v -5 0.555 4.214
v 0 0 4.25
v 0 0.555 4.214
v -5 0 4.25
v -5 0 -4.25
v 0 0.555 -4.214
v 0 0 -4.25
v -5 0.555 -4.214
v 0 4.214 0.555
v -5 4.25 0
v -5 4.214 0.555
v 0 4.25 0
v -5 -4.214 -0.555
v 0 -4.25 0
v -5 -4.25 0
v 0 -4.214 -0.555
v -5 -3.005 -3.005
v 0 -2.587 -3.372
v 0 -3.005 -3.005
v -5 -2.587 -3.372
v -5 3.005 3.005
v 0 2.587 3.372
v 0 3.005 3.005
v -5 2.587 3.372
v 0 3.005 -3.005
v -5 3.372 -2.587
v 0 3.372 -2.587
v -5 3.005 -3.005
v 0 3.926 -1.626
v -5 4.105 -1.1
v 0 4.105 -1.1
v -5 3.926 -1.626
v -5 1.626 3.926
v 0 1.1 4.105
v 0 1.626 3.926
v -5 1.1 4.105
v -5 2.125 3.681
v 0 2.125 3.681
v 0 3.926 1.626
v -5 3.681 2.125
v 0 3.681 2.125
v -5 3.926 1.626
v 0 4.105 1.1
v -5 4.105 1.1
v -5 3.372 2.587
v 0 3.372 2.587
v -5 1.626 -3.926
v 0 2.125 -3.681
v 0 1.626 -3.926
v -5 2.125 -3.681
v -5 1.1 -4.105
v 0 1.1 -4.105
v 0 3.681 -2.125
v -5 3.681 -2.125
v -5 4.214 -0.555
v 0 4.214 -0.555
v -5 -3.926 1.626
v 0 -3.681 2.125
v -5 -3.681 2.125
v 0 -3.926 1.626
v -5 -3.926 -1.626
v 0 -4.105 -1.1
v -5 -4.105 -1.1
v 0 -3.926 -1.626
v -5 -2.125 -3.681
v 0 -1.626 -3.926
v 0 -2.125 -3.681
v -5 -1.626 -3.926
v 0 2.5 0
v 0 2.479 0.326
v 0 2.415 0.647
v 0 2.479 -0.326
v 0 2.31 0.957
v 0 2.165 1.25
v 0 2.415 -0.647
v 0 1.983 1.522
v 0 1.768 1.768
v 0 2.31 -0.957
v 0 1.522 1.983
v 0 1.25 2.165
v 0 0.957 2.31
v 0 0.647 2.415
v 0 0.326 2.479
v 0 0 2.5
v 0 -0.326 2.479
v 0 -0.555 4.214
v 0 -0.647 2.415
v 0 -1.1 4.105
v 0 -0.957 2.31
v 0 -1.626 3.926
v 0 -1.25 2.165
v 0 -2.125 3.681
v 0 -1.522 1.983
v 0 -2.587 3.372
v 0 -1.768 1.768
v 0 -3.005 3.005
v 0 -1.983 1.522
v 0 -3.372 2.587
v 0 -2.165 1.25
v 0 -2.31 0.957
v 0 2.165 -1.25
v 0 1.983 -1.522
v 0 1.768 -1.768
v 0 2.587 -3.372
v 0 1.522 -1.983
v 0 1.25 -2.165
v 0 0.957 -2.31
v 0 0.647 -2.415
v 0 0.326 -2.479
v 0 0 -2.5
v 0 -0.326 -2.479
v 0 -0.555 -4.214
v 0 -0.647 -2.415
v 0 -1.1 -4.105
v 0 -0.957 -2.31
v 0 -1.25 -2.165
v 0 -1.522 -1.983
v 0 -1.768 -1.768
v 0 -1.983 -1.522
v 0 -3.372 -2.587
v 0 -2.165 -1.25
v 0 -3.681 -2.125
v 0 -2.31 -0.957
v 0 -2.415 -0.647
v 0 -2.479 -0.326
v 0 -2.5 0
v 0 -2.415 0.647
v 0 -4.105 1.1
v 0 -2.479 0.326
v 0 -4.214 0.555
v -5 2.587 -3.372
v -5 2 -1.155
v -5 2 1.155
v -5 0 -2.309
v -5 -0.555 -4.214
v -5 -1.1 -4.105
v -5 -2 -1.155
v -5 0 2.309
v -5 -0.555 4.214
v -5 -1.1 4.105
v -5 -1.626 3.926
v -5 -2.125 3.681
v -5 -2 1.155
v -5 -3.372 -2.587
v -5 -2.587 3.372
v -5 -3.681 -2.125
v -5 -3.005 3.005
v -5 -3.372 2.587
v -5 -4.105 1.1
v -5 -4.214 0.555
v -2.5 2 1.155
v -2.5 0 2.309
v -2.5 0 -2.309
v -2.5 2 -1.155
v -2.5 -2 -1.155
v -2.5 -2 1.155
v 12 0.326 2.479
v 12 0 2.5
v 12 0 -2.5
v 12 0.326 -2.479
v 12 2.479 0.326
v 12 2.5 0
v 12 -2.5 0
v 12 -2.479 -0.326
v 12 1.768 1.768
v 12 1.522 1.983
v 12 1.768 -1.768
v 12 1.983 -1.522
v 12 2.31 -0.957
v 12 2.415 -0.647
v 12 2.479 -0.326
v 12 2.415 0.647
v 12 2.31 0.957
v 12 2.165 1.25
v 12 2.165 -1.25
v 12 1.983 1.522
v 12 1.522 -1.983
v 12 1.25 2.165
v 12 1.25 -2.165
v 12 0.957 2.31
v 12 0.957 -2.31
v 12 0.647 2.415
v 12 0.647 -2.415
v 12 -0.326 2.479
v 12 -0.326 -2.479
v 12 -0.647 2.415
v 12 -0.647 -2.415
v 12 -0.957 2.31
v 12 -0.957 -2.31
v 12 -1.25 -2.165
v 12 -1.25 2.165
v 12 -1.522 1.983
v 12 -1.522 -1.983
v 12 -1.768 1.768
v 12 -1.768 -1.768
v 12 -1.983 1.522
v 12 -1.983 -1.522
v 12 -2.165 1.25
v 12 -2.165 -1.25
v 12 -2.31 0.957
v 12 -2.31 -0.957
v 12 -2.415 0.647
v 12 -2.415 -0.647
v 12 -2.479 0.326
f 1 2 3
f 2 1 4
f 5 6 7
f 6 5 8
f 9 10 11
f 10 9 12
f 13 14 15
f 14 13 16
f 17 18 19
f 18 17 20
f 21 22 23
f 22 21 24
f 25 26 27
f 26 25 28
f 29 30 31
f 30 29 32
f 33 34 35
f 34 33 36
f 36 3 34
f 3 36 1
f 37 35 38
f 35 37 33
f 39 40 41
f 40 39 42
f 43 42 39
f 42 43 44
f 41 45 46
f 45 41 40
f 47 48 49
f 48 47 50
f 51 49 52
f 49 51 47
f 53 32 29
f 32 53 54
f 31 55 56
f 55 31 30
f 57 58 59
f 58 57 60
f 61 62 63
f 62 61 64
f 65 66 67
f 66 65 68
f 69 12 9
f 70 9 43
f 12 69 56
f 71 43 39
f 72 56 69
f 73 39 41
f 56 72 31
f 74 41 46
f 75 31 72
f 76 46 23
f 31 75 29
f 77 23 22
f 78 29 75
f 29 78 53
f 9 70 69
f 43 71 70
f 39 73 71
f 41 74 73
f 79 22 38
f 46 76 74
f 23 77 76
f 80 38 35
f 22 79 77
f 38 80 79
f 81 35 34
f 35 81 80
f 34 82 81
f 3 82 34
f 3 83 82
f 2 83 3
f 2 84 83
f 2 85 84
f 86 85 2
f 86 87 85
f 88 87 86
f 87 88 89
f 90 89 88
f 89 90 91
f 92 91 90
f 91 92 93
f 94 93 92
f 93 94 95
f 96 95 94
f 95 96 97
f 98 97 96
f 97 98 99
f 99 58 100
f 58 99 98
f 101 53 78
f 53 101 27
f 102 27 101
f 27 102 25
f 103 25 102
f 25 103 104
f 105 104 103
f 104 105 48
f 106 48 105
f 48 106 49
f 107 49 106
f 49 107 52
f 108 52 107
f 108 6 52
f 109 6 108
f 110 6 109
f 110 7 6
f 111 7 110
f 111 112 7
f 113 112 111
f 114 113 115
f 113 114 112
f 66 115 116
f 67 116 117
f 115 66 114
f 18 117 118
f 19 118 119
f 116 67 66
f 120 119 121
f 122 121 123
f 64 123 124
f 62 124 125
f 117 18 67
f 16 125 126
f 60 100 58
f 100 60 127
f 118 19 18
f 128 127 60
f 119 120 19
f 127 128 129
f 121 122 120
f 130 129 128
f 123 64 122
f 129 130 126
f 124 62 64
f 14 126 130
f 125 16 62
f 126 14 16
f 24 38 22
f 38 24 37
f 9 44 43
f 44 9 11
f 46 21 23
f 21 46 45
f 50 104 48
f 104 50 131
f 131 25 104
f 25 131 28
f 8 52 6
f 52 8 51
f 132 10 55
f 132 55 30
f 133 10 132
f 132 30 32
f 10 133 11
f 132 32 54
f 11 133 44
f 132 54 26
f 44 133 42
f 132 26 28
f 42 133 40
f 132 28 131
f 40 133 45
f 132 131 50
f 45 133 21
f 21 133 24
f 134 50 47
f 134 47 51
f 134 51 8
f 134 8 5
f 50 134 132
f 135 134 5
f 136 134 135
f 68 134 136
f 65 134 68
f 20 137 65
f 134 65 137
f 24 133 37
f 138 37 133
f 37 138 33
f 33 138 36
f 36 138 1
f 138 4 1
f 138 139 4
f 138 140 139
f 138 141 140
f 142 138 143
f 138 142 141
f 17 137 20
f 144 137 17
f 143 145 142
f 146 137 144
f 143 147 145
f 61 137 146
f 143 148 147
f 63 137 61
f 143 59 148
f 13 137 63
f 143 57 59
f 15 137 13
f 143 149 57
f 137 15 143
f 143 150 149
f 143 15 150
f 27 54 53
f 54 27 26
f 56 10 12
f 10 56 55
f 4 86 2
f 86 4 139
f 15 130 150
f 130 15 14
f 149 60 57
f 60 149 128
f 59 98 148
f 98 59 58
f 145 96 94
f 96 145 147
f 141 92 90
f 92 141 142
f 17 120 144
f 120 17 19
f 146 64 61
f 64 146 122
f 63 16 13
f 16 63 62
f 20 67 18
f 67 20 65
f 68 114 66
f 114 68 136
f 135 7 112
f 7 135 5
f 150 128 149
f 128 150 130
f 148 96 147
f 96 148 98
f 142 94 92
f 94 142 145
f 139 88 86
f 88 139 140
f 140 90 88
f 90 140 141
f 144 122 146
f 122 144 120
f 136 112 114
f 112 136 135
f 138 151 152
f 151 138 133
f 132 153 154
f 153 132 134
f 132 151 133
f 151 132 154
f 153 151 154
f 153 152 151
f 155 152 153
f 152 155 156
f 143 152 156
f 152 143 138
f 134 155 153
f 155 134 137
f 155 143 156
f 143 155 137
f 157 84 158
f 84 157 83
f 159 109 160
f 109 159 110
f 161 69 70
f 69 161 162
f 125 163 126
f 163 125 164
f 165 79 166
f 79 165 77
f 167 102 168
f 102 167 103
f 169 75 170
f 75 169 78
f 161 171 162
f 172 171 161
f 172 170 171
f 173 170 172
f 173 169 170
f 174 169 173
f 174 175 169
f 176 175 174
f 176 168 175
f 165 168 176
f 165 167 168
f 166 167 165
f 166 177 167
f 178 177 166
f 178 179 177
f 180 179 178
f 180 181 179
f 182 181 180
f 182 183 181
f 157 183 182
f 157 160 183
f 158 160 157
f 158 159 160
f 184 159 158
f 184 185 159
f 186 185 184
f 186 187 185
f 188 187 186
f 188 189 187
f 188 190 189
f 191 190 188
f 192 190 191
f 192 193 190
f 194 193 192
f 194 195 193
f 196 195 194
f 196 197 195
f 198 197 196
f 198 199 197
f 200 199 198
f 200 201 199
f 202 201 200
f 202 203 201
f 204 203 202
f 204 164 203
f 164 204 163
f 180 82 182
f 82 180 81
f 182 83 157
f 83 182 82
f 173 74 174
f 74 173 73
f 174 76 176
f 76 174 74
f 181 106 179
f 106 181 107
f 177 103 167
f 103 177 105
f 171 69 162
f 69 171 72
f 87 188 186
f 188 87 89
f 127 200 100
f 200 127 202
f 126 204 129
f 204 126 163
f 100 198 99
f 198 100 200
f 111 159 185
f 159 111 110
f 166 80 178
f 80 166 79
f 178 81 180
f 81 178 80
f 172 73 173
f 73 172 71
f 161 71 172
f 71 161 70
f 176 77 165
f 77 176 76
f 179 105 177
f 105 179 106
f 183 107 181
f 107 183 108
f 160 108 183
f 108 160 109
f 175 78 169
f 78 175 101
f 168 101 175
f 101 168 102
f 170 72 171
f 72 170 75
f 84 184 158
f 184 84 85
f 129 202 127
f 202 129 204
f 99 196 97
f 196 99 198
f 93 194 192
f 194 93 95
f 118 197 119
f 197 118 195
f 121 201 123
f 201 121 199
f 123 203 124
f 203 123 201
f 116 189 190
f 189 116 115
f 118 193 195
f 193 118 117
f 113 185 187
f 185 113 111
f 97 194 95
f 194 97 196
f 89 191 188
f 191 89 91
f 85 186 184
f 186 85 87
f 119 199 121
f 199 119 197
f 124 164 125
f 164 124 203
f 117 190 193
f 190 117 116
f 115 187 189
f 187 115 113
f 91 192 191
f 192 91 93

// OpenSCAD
// file: ../../lib/nutsnbolts/data-access.scad
// Norm Nuts and Bolts - a OpenSCAD library
// Copyright (C) 2012  Johannes Kneer

// This program is free software: you can redistribute it and/or modify
// it under the terms of the GNU General Public License as published by
// the Free Software Foundation, either version 3 of the License, or
// (at your option) any later version.

// This program is distributed in the hope that it will be useful,
// but WITHOUT ANY WARRANTY; without even the implied warranty of
// MERCHANTABILITY or FITNESS FOR A PARTICULAR PURPOSE.  See the
// GNU General Public License for more details.

// You should have received a copy of the GNU General Public License
// along with this program.  If not, see <http://www.gnu.org/licenses/>.


// DATABASE ACCESS FUNCTIONS AND CONSTANTS



// == CONSTANTS ==

// screw table access keys
_NB_S_DESC            = 0;
_NB_S_FAMKEY			    = 1;
_NB_S_LENGTH          = 2;
_NB_S_NOTHREAD_LENGTH = 3;

_NB_F_DESC			      = 0;
_NB_F_OUTER_DIA       = 1;
_NB_F_INNER_DIA       = 2;
_NB_F_LEAD            = 3;
_NB_F_KEY             = 4;
_NB_F_KEY_DEPTH       = 5;
_NB_F_HEAD_HEIGHT     = 6;
_NB_F_HEAD_DIA        = 7;
_NB_F_NUT_KEY         = 8;
_NB_F_NUT_HEIGHT      = 9;
_NB_F_PITCH_FINE      = 10;
_NB_F_PITCH_MEDIUM    = 11;
_NB_F_PITCH_COARSE    = 12;


// == FUNCTIONS ==

// _get_screw("descriptor")   with descriptor = M8x25
//   find the line for a general object in the data matrix

function _get_screw(n) = data_screw[search([n], data_screw)[0]];
function _get_screw_fam(n) = data_screw_fam[search([_get_screw(n)[_NB_S_FAMKEY]], data_screw_fam)[0]];

function _get_fam(n) = data_screw_fam[search([n], data_screw_fam)[0]];


// _get_XXXXX("descriptor") functions
// find a single property in the database

function _get_desc(n)        = _get_screw(n)[_NB_S_DESC];
function _get_famkey(n)         = _get_screw(n)[_NB_S_FAMKEY];
function _get_length(n)      = _get_screw(n)[_NB_S_LENGTH];
function _get_nt_length(n)   = _get_screw(n)[_NB_S_NOTHREAD_LENGTH];

function _get_outer_dia(n)   = _get_screw_fam(n)[_NB_F_OUTER_DIA];
function _get_inner_dia(n)   = _get_screw_fam(n)[_NB_F_INNER_DIA];
function _get_lead(n)        = _get_screw_fam(n)[_NB_F_LEAD];
function _get_head_height(n) = _get_screw_fam(n)[_NB_F_HEAD_HEIGHT];
function _get_head_dia(n)    = _get_screw_fam(n)[_NB_F_HEAD_DIA];
function _get_nut_key(n)     = _get_screw_fam(n)[_NB_F_NUT_KEY];
function _get_nut_height(n)  = _get_screw_fam(n)[_NB_F_NUT_HEIGHT];
function _get_fine_pitch(n)  = _get_screw_fam(n)[_NB_F_PITCH_FINE];
function _get_medium_pitch(n)  = _get_screw_fam(n)[_NB_F_PITCH_MEDIUM];
function _get_coarse_pitch(n)  = _get_screw_fam(n)[_NB_F_PITCH_COARSE];
// main file
/**********************************************************************************************************************
 **
 ** parts/vitamins/screw_M5x12.scad
 **
 ** This file renders a screw of the dimensions specified by the file name.
 **
 **********************************************************************************************************************/

include <../../lib/nutsnbolts/cyl_head_bolt.scad>;

$fn = 48;
rotate([0, -90, 0])
	screw("M5x12"); 
